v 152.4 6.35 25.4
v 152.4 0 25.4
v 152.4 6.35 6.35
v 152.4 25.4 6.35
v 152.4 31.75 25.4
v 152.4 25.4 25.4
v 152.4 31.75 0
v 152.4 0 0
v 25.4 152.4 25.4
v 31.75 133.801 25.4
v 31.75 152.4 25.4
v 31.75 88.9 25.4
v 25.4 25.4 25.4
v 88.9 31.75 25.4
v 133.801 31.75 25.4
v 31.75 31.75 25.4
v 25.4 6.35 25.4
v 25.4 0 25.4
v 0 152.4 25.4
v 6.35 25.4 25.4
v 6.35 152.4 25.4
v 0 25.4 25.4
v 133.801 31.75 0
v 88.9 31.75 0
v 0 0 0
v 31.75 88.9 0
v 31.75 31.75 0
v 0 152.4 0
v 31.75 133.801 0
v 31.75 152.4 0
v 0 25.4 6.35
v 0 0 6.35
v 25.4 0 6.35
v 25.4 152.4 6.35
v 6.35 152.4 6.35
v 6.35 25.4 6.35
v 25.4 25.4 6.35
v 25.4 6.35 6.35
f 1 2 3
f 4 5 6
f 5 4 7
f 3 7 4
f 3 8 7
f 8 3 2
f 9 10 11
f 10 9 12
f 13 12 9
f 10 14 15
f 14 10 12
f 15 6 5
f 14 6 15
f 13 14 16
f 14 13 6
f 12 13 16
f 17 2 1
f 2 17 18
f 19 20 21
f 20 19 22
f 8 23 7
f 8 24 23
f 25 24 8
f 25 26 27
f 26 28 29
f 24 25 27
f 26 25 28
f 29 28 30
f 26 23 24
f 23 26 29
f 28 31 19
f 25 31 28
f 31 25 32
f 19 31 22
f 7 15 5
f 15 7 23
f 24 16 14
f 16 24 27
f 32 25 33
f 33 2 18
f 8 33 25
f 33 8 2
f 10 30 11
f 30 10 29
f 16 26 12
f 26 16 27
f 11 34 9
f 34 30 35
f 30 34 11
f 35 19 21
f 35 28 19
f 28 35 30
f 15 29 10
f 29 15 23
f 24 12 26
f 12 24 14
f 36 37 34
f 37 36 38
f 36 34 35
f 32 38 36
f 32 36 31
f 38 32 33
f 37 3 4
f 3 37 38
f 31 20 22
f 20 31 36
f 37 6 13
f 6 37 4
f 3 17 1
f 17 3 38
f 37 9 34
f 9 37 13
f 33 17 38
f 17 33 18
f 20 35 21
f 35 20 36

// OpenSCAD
length1 = 6*2.54*10;
widtho = 1.25*2.54*10;
widthi = 0.75*2.54*10;
height1 = 1*2.54*10;

difference() {
    color("purple")
    union() {
        cube([length1, widtho, height1]);
        cube([widtho, length1, height1]);
        translate([length1-widtho, 0, 0]) rotate([0, 0, 45])
            cube([widtho, (length1-widtho)*sqrt(2), height1]);
    }
    translate([-1, (widtho-widthi )/2, 0.25*2.54*10])
        cube([2*length1, widthi, height1]);
    translate([(widtho-widthi)/2, -1, 0.25*2.54*10])
        cube([widthi, 2*length1, height1]);
    translate([-1, -1, 0.25*2.54*10])
        cube([widthi, widthi, height1]);
}
